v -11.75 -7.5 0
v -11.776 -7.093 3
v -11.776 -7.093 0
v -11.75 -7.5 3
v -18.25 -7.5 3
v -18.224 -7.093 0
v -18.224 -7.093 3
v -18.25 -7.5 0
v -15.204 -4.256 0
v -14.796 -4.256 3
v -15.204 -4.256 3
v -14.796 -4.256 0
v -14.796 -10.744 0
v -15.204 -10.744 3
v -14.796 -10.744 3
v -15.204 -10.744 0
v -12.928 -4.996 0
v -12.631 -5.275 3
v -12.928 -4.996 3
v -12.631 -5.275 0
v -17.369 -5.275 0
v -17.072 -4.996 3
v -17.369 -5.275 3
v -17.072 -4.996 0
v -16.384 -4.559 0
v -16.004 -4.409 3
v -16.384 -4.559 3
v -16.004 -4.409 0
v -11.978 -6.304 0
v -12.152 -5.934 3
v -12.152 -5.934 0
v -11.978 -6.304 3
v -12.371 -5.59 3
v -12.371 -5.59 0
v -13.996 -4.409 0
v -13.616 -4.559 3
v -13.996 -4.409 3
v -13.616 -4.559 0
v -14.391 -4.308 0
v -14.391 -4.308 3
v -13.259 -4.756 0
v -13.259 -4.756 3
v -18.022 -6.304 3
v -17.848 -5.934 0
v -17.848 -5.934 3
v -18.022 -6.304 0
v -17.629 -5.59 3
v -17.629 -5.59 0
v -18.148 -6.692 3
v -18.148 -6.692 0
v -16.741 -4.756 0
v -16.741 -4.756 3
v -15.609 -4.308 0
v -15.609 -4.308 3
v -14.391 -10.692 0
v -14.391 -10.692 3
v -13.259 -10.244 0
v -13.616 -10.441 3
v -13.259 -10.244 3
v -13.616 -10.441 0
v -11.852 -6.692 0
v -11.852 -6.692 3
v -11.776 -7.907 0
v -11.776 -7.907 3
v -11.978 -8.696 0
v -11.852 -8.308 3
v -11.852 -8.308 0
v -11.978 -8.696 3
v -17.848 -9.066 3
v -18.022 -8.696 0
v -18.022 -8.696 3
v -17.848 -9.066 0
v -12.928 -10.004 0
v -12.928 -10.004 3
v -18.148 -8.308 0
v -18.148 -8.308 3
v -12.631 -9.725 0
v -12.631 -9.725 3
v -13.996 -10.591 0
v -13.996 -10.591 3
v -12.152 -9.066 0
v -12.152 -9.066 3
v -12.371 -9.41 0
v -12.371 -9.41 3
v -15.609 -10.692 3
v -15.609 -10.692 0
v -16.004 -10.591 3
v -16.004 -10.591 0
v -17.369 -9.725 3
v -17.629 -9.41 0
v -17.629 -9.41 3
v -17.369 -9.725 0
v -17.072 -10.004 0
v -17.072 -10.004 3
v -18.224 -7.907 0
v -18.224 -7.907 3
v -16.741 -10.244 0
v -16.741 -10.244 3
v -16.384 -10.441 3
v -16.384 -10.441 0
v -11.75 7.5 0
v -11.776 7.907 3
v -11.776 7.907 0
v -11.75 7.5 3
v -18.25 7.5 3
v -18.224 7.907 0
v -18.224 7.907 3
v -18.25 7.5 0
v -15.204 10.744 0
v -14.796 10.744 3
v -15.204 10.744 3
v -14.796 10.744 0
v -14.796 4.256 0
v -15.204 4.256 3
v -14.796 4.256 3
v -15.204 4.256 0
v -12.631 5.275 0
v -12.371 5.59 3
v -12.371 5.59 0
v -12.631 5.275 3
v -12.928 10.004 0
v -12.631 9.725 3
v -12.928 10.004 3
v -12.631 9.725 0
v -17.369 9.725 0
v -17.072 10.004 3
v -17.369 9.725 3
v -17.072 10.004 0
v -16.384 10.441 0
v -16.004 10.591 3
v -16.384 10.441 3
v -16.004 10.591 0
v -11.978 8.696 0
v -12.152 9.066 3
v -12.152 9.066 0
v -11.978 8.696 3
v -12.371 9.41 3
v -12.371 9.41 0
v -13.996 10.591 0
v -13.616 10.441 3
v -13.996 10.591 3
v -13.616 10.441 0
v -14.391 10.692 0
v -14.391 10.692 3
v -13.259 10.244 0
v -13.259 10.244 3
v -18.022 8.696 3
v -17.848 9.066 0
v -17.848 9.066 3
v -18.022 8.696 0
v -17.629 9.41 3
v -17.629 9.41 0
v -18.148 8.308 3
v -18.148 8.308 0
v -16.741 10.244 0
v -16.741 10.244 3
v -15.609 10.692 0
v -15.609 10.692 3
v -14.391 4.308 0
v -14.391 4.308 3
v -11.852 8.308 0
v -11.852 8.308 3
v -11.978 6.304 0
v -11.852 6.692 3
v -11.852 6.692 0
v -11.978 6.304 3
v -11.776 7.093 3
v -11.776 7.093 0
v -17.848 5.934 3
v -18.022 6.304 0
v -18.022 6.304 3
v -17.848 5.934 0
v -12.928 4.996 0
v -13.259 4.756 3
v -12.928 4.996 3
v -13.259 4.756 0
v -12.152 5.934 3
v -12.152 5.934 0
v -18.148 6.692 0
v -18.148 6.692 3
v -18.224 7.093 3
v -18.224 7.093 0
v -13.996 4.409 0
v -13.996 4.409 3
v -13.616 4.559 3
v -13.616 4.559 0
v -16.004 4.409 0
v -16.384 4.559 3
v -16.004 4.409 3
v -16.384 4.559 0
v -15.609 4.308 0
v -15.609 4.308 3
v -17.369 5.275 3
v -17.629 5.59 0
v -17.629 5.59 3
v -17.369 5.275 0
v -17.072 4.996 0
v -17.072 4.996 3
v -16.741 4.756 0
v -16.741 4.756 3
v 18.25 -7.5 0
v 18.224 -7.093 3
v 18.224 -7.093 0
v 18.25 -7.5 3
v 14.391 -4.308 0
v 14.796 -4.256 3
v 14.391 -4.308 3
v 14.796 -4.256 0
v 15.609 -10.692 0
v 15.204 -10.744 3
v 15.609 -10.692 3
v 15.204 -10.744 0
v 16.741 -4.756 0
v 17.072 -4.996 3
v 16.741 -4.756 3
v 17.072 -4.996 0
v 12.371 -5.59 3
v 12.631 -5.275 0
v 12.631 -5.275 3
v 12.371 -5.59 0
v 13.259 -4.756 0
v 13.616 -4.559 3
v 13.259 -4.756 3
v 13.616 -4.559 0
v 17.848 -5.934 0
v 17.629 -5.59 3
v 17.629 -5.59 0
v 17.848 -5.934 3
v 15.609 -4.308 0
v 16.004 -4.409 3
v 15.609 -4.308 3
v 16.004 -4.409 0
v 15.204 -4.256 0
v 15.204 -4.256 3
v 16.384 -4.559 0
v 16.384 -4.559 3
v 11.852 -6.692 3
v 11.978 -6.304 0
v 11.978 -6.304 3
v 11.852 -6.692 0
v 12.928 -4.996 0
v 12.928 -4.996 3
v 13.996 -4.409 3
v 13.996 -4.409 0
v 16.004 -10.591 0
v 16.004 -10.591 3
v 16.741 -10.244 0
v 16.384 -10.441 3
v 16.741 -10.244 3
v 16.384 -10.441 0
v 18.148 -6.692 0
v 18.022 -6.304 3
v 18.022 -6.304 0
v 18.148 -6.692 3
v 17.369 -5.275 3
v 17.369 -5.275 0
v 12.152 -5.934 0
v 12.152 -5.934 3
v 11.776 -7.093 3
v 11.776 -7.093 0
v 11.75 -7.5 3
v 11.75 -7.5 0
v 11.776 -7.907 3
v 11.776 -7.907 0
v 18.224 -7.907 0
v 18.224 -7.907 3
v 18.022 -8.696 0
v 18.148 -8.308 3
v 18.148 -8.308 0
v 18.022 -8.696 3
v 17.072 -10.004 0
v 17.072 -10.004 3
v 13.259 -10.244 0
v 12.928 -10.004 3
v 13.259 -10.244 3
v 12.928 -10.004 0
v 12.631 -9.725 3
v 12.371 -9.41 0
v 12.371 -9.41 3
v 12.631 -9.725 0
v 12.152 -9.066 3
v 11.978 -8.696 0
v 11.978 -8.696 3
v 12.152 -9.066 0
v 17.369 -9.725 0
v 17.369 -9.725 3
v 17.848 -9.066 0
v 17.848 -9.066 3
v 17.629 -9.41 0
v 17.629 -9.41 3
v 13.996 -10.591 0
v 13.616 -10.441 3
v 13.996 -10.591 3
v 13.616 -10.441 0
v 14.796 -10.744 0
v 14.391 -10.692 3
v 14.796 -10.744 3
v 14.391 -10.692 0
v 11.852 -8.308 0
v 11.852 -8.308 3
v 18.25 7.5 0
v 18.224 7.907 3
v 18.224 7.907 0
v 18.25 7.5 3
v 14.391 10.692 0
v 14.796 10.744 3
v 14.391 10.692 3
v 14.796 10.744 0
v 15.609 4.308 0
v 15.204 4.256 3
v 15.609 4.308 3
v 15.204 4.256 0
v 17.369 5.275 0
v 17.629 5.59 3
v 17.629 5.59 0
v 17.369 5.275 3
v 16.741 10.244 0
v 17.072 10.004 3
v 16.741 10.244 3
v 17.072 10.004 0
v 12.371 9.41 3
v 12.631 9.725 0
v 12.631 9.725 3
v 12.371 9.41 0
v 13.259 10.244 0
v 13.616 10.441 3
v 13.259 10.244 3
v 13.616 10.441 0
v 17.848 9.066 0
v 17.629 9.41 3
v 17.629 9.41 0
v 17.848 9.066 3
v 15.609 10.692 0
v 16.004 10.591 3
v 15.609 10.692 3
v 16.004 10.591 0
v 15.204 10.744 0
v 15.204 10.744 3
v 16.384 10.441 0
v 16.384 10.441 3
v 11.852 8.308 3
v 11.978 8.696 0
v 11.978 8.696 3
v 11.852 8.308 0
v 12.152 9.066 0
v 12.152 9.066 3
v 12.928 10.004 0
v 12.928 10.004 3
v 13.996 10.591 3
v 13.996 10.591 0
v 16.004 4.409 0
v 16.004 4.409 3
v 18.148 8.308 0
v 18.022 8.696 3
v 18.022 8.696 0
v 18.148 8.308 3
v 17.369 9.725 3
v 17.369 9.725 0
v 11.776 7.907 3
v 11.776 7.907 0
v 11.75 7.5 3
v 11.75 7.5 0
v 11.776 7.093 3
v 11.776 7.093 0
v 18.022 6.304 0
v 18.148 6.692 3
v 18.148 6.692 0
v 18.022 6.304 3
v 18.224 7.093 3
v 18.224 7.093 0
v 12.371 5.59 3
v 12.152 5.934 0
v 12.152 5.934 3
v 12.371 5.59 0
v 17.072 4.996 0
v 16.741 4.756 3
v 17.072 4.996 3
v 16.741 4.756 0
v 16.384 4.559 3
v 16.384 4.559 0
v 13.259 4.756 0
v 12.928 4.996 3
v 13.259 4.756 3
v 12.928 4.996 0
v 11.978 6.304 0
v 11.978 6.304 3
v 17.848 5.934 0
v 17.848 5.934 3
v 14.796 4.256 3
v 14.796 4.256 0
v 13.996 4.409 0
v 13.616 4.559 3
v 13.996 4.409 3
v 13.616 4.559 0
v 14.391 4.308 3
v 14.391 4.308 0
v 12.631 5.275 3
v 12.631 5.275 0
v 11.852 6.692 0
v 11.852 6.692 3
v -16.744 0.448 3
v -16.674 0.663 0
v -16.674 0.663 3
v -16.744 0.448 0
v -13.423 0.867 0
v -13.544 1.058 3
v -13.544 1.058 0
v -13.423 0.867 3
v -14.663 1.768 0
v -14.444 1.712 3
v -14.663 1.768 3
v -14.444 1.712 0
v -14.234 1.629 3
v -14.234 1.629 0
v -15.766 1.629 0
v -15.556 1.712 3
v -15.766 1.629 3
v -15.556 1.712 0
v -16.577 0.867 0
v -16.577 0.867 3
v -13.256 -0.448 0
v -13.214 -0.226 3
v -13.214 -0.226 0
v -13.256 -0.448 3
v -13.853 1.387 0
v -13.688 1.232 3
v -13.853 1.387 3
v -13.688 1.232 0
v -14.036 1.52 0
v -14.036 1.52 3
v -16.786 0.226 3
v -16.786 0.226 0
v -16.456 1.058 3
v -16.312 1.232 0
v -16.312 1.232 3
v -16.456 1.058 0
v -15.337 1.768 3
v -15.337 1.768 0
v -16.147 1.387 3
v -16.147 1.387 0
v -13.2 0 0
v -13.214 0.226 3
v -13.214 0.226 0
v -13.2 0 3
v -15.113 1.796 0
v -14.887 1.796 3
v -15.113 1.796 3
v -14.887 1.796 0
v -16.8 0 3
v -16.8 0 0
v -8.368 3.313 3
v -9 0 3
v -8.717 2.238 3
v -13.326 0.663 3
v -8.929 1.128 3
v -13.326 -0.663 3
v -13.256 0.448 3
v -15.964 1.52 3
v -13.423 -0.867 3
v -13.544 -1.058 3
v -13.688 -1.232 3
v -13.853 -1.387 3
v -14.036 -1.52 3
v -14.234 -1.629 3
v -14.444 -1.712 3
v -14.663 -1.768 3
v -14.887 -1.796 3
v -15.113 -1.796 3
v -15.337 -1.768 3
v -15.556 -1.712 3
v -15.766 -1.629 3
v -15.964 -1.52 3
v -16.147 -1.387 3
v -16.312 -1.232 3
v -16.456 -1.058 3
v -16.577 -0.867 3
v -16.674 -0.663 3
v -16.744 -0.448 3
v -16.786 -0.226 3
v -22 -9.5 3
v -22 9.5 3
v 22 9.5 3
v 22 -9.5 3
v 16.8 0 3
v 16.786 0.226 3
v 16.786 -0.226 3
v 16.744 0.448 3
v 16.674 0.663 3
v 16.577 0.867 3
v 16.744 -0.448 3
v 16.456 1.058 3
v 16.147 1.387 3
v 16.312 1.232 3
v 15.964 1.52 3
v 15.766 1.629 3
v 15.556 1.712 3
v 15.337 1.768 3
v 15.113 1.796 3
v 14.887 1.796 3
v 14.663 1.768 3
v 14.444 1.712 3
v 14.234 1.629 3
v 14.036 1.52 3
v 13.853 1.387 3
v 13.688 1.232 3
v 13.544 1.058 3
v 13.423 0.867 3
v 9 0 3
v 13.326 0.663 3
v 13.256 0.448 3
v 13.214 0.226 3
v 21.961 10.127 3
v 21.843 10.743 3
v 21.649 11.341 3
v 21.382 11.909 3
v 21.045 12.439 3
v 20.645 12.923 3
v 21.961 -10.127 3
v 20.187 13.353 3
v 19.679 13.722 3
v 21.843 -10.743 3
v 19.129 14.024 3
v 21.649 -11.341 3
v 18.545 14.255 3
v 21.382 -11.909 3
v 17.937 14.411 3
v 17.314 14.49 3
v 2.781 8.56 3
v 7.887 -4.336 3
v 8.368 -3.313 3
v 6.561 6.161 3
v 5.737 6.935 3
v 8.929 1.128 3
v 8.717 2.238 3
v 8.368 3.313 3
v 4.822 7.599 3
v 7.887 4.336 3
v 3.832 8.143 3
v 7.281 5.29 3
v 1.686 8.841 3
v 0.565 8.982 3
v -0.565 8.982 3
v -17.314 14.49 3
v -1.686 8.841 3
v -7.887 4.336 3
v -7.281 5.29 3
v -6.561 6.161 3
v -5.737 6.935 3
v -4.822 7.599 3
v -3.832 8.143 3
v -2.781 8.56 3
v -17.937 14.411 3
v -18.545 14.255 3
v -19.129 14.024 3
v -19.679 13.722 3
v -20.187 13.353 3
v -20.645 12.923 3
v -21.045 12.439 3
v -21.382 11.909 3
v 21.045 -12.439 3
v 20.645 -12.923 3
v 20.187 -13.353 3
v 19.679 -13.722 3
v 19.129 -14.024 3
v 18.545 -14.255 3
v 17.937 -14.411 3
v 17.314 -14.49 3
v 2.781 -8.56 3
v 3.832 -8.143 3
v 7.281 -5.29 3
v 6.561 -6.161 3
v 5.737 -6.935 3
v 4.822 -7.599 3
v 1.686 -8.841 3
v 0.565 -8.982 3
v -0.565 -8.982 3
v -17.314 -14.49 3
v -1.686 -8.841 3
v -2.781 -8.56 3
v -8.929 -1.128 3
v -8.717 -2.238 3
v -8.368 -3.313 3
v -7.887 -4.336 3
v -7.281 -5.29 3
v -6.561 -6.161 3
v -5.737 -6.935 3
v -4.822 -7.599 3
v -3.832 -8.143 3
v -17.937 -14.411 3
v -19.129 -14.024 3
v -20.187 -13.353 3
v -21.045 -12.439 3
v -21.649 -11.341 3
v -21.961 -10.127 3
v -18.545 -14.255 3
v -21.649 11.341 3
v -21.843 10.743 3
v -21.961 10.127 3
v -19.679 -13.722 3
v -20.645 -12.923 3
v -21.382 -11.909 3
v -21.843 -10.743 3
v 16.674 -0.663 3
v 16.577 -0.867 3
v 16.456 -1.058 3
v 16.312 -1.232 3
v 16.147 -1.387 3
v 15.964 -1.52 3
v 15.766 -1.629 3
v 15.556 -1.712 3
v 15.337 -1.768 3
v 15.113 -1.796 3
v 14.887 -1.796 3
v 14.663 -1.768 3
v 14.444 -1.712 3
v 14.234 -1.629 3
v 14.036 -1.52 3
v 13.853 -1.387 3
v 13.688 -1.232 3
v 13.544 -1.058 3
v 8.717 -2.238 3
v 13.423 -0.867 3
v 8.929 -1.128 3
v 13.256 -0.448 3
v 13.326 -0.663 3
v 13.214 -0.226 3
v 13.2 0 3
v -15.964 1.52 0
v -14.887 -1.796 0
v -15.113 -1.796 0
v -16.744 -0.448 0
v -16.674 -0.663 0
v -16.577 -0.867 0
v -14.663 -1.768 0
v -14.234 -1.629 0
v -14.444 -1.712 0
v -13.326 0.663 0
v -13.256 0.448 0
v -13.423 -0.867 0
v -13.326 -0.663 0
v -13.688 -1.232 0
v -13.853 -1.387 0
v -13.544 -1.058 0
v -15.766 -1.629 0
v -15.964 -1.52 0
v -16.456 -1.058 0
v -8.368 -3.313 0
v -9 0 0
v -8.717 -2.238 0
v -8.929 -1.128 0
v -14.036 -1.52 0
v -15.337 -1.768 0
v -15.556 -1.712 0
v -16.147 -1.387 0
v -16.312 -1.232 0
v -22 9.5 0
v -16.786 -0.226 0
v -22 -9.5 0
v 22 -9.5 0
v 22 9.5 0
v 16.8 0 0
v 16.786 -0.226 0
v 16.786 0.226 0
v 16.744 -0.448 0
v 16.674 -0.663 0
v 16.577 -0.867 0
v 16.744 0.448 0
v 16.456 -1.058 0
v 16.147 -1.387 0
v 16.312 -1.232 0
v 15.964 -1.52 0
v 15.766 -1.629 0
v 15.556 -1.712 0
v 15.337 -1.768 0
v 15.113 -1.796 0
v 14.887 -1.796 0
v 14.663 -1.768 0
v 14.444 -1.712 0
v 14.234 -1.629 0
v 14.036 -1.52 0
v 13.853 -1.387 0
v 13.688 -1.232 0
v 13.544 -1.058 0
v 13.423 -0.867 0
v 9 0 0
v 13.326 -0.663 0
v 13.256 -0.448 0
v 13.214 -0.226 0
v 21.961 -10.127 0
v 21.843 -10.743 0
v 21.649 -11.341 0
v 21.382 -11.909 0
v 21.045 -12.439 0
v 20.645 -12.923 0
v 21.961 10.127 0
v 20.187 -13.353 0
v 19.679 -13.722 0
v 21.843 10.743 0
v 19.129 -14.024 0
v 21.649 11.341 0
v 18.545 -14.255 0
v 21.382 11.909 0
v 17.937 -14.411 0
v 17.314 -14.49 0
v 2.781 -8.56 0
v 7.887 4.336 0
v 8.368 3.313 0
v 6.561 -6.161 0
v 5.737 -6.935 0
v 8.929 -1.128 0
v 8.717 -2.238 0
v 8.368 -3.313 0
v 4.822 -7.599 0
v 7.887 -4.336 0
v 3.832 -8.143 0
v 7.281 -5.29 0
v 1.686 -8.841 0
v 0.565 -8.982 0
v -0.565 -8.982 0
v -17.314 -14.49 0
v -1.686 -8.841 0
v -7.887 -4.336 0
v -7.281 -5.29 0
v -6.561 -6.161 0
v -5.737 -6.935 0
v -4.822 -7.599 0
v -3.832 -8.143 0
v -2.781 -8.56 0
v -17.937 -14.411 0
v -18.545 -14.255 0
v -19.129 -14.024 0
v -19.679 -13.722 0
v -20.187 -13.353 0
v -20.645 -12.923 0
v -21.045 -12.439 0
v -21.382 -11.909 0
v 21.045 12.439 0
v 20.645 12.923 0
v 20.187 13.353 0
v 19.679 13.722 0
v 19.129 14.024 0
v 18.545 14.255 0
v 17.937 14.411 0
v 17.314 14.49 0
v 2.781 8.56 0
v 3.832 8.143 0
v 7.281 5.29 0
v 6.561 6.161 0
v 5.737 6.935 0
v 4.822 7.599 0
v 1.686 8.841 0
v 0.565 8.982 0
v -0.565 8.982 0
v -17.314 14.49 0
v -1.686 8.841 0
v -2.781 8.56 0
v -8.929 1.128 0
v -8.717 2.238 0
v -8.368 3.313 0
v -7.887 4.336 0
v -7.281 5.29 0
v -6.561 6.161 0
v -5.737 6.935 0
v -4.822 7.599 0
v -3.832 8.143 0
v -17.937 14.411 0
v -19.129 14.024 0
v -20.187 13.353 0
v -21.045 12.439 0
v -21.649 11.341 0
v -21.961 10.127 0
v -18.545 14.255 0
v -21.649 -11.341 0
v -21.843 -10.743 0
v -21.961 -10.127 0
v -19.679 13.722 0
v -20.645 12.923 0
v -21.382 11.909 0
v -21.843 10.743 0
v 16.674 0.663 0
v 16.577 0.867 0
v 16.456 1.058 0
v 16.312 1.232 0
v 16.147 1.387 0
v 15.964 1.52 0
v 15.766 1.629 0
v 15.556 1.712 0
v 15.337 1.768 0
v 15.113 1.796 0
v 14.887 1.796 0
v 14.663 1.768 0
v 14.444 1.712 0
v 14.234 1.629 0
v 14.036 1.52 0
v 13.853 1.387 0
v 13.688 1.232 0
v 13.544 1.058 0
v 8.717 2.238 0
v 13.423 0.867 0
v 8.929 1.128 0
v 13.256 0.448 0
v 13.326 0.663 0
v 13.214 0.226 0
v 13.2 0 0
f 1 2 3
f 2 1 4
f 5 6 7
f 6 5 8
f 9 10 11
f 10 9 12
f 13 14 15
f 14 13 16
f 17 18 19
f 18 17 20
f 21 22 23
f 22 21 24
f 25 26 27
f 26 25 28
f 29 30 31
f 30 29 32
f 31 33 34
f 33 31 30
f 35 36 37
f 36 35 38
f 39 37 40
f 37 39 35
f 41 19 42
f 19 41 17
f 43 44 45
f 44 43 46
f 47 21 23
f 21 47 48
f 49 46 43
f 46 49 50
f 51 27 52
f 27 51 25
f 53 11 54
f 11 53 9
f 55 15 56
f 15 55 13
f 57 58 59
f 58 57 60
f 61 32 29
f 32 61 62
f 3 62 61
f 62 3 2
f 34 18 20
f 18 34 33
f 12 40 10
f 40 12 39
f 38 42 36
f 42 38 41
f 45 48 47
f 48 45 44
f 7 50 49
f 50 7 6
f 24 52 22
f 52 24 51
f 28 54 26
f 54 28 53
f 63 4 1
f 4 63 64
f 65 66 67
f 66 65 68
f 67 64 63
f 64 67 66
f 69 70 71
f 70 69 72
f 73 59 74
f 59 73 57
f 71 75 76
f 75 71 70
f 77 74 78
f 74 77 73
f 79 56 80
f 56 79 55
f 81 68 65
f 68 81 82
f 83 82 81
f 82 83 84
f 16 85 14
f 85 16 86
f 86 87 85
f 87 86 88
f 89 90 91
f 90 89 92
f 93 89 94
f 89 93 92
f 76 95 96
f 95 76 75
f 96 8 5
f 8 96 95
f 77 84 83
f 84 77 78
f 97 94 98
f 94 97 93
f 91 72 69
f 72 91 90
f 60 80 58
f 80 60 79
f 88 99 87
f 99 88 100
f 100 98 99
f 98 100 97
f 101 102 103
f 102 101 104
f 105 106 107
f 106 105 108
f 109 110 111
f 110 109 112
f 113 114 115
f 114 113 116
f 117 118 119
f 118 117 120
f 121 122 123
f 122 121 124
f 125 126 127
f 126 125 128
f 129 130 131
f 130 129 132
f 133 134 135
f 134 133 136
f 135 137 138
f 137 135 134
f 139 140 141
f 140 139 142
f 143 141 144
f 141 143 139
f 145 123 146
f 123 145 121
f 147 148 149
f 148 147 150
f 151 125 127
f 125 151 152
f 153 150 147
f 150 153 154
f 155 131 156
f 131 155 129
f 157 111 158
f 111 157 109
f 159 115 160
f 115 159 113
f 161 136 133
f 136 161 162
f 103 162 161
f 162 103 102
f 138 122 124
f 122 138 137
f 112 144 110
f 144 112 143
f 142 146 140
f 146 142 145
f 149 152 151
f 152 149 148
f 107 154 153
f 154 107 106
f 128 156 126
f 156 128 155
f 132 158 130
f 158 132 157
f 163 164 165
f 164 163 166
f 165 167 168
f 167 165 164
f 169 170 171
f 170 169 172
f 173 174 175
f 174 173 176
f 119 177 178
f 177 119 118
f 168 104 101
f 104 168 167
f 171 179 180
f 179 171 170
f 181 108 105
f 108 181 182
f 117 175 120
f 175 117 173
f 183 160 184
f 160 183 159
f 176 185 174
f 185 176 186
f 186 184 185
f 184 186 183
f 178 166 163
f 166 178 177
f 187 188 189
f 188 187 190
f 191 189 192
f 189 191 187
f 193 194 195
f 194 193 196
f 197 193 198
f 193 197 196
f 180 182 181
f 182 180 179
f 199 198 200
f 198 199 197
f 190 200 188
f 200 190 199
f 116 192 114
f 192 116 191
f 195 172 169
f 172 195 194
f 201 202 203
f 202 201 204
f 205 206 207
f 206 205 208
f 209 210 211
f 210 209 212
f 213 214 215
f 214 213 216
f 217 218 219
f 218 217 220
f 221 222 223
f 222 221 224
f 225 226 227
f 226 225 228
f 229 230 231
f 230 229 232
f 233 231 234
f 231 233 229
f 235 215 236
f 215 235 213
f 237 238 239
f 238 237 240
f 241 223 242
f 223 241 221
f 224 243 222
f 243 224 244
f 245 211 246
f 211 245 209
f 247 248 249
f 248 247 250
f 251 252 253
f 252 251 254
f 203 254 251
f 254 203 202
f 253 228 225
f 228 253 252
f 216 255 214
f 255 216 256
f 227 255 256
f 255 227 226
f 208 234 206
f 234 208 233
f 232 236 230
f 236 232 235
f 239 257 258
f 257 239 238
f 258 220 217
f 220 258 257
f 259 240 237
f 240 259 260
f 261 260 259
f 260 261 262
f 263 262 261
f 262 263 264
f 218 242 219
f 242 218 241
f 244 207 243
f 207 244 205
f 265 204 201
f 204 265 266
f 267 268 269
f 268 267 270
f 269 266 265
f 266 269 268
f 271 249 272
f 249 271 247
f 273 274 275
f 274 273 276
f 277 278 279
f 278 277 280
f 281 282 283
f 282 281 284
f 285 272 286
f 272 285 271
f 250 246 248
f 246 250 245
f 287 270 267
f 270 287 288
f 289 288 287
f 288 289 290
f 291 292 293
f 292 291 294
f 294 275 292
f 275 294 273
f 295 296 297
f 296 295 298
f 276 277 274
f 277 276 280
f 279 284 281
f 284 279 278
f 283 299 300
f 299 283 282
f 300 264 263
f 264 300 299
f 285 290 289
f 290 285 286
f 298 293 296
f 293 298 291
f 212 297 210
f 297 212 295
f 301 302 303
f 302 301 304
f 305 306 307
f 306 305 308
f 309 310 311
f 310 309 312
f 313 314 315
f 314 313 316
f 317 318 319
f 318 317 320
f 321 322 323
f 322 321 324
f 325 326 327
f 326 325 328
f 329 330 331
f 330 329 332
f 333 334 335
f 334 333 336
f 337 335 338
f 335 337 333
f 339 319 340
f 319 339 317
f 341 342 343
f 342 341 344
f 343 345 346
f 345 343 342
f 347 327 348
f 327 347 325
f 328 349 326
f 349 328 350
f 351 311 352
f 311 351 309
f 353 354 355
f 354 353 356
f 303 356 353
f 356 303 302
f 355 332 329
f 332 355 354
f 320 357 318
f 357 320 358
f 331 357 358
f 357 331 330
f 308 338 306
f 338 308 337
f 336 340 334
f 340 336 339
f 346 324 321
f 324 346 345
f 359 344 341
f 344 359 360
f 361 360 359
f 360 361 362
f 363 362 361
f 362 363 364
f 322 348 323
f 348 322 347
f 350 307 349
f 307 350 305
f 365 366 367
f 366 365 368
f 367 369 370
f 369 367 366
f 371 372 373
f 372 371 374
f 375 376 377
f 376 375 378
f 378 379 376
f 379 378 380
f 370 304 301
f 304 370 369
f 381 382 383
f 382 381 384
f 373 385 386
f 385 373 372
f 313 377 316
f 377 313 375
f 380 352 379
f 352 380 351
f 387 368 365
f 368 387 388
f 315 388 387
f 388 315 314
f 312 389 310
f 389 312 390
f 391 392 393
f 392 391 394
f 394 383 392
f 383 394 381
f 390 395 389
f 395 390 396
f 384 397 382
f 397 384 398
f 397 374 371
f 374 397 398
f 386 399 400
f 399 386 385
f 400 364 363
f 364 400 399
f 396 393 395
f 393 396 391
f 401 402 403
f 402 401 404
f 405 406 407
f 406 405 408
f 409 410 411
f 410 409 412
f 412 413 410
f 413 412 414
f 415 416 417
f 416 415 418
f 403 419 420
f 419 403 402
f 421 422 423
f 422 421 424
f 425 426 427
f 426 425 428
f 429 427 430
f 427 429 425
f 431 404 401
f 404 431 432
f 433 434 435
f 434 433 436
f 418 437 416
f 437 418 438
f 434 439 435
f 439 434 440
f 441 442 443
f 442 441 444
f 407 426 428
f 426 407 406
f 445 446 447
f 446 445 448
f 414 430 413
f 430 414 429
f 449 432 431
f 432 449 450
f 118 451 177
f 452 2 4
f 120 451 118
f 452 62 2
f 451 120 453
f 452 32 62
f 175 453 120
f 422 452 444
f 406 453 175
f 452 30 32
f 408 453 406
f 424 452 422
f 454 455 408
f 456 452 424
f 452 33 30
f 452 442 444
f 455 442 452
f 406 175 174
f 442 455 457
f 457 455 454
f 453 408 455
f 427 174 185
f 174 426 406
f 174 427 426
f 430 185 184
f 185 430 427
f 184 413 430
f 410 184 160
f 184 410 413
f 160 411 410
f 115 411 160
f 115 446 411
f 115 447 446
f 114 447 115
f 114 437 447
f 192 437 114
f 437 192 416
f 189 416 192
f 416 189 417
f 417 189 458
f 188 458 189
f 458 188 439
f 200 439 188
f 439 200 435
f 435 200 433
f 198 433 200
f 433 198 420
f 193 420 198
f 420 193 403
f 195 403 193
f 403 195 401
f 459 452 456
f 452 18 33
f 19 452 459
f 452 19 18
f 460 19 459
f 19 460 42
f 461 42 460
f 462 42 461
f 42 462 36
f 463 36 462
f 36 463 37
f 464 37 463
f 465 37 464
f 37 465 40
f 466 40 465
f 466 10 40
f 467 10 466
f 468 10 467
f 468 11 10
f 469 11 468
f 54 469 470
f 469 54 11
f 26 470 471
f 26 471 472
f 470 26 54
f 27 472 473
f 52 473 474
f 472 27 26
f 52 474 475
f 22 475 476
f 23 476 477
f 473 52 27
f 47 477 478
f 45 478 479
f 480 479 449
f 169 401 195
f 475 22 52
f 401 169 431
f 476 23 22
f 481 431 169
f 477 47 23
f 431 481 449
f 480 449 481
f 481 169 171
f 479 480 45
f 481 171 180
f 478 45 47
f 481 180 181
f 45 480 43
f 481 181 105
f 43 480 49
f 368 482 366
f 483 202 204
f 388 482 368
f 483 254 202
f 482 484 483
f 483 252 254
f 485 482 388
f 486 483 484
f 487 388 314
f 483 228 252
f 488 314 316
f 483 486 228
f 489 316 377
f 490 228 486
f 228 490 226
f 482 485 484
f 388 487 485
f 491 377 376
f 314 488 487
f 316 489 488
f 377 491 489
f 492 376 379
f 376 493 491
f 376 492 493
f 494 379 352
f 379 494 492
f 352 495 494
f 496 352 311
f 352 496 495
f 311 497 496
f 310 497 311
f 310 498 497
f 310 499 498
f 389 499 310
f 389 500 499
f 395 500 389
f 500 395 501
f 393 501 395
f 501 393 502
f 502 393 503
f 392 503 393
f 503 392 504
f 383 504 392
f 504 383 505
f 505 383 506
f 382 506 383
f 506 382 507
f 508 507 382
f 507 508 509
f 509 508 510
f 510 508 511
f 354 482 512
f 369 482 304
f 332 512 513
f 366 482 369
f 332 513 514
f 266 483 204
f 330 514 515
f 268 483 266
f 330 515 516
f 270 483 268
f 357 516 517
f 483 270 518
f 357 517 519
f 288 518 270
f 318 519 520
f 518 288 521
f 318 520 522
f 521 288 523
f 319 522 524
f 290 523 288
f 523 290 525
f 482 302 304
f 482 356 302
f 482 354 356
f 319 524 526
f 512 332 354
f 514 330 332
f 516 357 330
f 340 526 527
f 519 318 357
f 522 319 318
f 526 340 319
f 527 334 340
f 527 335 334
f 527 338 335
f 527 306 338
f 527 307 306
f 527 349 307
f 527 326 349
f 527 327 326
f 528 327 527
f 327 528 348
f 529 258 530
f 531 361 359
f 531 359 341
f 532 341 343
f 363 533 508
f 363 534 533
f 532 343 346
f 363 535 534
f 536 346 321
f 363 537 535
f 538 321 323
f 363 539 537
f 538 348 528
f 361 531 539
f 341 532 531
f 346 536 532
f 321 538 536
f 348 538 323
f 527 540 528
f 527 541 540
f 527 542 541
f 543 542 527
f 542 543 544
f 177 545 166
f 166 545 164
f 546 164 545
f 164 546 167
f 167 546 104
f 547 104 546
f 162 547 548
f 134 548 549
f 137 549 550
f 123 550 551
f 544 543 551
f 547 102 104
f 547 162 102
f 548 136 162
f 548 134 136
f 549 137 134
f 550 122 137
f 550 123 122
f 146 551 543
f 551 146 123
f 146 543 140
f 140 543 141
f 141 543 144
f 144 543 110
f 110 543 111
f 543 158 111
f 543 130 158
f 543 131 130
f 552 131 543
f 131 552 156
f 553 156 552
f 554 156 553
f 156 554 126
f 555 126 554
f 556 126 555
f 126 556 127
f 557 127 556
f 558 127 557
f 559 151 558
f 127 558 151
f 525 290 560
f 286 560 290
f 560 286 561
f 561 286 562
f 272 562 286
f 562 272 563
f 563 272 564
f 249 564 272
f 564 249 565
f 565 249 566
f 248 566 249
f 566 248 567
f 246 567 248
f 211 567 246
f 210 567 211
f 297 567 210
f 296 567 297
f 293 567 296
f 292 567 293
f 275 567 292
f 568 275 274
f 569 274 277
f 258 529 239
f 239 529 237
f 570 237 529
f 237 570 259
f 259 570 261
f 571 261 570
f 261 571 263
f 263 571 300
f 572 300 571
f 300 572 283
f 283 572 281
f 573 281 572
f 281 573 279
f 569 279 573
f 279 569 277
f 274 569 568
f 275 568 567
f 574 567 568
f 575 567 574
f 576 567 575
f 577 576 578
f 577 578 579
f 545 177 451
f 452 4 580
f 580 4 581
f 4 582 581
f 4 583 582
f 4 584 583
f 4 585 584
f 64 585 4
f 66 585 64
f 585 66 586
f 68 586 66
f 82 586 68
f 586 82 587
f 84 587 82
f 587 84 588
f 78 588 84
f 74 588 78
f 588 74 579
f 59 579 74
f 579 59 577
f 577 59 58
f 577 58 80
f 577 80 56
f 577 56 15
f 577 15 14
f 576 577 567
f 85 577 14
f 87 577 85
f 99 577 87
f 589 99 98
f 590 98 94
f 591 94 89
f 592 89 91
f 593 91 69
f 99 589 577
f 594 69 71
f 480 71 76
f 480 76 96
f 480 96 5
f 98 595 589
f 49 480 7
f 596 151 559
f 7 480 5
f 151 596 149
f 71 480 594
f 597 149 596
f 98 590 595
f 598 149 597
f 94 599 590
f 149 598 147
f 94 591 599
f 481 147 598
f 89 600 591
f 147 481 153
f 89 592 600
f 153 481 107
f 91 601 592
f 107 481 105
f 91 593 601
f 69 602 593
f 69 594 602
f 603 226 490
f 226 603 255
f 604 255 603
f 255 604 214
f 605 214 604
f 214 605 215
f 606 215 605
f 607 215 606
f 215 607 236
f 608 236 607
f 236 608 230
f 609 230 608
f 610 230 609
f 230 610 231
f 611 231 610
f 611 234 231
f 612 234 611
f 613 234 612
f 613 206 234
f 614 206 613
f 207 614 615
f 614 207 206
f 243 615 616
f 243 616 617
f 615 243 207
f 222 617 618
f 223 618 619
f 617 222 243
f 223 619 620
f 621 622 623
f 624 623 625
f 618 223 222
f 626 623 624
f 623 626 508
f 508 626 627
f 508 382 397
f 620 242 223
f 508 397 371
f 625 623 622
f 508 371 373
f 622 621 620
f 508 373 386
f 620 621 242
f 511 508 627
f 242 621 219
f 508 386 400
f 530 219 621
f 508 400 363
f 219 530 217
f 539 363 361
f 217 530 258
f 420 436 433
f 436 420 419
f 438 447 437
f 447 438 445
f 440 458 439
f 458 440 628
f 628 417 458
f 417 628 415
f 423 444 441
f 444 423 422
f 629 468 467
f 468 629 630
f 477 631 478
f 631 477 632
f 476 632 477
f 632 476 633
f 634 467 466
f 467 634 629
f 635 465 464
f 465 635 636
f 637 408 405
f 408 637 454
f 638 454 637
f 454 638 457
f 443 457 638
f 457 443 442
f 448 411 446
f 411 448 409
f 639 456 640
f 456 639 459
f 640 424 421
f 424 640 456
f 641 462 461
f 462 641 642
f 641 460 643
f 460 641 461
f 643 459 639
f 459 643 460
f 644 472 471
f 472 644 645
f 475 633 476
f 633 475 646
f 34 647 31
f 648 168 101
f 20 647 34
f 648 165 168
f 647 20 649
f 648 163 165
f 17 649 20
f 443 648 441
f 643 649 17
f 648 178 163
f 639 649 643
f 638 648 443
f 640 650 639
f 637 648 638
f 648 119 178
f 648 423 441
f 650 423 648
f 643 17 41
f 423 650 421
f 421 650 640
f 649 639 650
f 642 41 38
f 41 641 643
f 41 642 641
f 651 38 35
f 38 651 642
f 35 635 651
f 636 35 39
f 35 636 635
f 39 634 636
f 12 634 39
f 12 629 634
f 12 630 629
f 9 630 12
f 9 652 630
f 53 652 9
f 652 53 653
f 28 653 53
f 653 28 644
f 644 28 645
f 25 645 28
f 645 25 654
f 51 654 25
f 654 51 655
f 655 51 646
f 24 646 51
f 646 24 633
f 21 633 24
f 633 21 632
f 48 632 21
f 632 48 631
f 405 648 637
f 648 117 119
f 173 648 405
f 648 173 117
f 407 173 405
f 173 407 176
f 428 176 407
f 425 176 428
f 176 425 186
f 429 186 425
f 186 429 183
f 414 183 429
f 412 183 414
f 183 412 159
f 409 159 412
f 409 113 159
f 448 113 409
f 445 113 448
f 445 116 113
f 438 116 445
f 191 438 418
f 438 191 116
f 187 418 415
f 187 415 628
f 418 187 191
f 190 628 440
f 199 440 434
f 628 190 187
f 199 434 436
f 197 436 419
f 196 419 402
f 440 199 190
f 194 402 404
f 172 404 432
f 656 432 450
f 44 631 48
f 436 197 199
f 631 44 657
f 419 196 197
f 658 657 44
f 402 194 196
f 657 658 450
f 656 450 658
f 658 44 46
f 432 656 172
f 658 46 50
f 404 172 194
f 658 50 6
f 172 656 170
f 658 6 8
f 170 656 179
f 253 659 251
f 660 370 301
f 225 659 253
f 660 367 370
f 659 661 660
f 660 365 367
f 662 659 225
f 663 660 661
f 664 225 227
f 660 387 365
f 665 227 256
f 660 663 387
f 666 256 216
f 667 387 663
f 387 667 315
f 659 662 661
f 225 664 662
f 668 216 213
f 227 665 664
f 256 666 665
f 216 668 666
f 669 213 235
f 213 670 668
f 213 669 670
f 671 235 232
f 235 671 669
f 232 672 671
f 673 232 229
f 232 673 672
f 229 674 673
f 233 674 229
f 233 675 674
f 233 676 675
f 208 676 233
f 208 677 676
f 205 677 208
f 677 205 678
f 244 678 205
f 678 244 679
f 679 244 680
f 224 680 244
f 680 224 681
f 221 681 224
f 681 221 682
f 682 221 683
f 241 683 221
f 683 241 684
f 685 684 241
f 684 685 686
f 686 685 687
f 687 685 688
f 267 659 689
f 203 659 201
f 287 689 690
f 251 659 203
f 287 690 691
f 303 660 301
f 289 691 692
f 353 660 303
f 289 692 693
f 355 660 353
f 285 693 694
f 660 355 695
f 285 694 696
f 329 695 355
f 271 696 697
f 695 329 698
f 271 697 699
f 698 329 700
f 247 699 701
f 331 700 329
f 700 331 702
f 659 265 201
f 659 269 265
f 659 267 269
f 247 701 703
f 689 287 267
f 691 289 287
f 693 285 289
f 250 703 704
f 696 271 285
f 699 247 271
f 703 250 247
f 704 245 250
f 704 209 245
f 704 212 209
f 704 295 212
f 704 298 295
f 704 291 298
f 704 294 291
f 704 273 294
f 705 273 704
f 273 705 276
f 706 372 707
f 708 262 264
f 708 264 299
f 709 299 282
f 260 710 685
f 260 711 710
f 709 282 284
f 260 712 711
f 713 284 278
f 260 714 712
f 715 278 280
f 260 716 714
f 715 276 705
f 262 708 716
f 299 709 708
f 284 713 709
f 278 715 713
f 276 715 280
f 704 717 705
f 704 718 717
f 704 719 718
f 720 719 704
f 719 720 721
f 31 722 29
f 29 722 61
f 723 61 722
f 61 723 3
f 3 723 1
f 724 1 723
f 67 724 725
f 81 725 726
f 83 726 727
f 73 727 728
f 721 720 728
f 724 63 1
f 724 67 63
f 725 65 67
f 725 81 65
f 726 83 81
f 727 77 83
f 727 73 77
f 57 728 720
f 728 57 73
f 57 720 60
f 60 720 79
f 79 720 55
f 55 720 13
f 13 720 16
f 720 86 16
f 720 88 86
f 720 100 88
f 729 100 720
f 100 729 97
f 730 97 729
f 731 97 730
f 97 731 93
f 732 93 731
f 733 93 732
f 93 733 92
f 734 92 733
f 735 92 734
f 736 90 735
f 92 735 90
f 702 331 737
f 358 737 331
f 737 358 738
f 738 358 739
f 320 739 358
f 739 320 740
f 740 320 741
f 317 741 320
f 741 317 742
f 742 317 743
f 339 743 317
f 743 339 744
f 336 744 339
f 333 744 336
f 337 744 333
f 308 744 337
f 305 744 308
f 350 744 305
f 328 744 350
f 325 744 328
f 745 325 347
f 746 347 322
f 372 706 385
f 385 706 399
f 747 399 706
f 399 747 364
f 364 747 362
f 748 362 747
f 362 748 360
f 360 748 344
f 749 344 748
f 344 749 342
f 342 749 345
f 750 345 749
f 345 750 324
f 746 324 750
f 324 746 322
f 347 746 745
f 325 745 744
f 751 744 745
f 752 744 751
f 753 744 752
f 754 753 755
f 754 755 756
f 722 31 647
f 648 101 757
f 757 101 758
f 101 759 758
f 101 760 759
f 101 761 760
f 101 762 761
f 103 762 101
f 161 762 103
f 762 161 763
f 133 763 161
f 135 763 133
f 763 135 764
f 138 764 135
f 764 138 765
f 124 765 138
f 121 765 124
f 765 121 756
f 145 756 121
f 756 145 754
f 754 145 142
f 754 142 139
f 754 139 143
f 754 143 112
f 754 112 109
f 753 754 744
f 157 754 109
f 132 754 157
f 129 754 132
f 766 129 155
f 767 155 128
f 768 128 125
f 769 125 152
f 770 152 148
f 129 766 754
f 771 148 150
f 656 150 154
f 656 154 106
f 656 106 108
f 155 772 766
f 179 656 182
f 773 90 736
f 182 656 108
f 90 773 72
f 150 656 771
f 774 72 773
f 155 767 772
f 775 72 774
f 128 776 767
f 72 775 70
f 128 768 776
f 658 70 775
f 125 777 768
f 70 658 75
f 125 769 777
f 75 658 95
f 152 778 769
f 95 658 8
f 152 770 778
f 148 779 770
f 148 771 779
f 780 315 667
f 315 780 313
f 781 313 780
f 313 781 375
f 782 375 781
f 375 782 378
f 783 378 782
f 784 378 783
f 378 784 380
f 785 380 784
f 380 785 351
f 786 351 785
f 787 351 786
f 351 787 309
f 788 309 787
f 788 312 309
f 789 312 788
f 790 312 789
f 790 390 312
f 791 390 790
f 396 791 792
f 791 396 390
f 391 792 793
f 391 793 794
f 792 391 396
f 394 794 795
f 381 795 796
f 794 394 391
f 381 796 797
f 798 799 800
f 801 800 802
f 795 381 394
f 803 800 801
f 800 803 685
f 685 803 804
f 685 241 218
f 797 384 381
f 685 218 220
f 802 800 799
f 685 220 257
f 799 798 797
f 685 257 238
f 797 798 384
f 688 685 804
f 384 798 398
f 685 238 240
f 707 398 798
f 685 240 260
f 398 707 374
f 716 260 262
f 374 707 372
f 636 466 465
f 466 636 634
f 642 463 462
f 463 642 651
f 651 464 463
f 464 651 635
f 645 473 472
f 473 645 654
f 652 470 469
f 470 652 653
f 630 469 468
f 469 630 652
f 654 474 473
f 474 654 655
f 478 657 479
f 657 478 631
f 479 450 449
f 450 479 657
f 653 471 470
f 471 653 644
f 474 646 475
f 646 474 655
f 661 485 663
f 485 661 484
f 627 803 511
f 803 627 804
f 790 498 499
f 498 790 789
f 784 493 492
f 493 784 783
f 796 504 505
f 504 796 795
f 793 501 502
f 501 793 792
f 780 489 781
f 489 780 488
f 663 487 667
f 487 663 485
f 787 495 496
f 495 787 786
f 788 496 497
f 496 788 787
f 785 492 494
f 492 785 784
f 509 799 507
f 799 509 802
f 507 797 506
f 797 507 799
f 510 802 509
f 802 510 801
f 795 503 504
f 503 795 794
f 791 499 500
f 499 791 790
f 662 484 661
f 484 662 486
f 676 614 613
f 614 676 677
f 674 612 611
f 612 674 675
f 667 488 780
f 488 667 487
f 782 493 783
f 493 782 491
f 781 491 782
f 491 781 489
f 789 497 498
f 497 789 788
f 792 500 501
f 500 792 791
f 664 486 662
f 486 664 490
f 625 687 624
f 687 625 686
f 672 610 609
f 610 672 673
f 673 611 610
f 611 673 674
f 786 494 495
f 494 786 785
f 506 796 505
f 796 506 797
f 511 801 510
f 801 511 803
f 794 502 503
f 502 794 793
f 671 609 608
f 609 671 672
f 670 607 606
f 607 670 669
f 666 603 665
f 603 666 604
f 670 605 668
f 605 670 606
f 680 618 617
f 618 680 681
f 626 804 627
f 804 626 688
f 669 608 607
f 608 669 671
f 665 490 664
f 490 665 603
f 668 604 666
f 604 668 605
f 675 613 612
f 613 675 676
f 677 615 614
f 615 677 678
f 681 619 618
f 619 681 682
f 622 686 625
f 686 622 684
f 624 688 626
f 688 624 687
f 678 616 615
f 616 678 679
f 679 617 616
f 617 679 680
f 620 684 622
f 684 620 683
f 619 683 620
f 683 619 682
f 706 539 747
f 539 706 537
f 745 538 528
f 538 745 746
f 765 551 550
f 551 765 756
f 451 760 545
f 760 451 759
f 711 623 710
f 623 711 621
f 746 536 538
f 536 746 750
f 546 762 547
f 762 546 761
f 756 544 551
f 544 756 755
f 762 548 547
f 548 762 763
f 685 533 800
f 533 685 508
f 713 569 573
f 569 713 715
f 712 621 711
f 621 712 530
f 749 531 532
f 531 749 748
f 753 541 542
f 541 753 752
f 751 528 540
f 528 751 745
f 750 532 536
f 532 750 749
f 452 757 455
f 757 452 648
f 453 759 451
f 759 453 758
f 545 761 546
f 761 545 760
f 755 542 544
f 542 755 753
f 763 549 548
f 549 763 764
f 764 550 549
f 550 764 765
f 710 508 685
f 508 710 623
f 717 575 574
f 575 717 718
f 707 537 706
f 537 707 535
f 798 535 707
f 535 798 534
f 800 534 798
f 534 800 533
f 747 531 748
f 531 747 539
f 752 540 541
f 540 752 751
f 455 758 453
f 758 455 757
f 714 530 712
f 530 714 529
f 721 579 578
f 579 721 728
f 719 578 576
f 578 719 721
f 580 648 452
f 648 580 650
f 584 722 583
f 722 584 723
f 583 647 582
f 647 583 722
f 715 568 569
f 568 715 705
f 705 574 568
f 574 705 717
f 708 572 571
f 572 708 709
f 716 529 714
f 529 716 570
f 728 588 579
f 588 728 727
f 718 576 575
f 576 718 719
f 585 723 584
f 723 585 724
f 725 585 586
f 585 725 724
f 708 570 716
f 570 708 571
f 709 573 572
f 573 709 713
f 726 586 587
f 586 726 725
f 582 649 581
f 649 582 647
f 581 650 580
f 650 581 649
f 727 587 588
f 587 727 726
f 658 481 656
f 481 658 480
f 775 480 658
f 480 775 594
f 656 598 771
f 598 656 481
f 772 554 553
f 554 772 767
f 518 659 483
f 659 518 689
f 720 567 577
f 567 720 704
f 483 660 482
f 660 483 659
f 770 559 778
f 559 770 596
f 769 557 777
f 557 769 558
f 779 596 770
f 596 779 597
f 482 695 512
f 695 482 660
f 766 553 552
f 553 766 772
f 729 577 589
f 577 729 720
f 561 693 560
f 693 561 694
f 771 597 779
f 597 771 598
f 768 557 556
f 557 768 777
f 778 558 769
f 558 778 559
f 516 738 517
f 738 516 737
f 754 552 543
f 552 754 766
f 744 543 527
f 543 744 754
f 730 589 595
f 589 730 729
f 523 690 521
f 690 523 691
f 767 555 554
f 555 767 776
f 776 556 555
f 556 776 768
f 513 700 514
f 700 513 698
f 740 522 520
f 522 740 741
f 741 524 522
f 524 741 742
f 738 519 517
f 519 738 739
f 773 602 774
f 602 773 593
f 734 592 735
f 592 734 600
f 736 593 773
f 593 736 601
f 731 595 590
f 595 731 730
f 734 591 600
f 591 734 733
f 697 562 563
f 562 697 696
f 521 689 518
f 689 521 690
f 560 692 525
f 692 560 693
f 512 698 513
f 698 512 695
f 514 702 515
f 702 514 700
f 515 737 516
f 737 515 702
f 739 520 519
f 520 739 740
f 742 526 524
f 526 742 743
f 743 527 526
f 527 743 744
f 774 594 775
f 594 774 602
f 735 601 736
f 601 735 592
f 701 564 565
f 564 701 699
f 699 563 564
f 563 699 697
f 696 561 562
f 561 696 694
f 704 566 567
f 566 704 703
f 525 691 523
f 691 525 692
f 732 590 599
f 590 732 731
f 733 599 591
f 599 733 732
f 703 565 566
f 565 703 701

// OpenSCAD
$fn = 50;


difference() {
	union() {
		hull() {
			translate(v = [-17.0000000000, 9.5000000000, 0]) {
				cylinder(h = 3, r = 5);
			}
			translate(v = [17.0000000000, 9.5000000000, 0]) {
				cylinder(h = 3, r = 5);
			}
			translate(v = [-17.0000000000, -9.5000000000, 0]) {
				cylinder(h = 3, r = 5);
			}
			translate(v = [17.0000000000, -9.5000000000, 0]) {
				cylinder(h = 3, r = 5);
			}
		}
	}
	union() {
		#translate(v = [-15.0000000000, -7.5000000000, 0]) {
			cylinder(h = 3, r = 3.2500000000);
		}
		#translate(v = [-15.0000000000, 7.5000000000, 0]) {
			cylinder(h = 3, r = 3.2500000000);
		}
		#translate(v = [15.0000000000, -7.5000000000, 0]) {
			cylinder(h = 3, r = 3.2500000000);
		}
		#translate(v = [15.0000000000, 7.5000000000, 0]) {
			cylinder(h = 3, r = 3.2500000000);
		}
		#translate(v = [-15.0000000000, -7.5000000000, -100.0000000000]) {
			cylinder(h = 200, r = 3.2500000000);
		}
		#translate(v = [-15.0000000000, 7.5000000000, -100.0000000000]) {
			cylinder(h = 200, r = 3.2500000000);
		}
		#translate(v = [15.0000000000, -7.5000000000, -100.0000000000]) {
			cylinder(h = 200, r = 3.2500000000);
		}
		#translate(v = [15.0000000000, 7.5000000000, -100.0000000000]) {
			cylinder(h = 200, r = 3.2500000000);
		}
		#translate(v = [-15.0000000000, -7.5000000000, 0]) {
			cylinder(h = 3, r = 1.8000000000);
		}
		#translate(v = [-15.0000000000, 0.0000000000, 0]) {
			cylinder(h = 3, r = 1.8000000000);
		}
		#translate(v = [-15.0000000000, 7.5000000000, 0]) {
			cylinder(h = 3, r = 1.8000000000);
		}
		#translate(v = [15.0000000000, -7.5000000000, 0]) {
			cylinder(h = 3, r = 1.8000000000);
		}
		#translate(v = [15.0000000000, 0.0000000000, 0]) {
			cylinder(h = 3, r = 1.8000000000);
		}
		#translate(v = [15.0000000000, 7.5000000000, 0]) {
			cylinder(h = 3, r = 1.8000000000);
		}
		#translate(v = [-15.0000000000, -7.5000000000, 0]) {
			cylinder(h = 3, r = 1.8000000000);
		}
		#translate(v = [-15.0000000000, 0.0000000000, 0]) {
			cylinder(h = 3, r = 1.8000000000);
		}
		#translate(v = [-15.0000000000, 7.5000000000, 0]) {
			cylinder(h = 3, r = 1.8000000000);
		}
		#translate(v = [15.0000000000, -7.5000000000, 0]) {
			cylinder(h = 3, r = 1.8000000000);
		}
		#translate(v = [15.0000000000, 0.0000000000, 0]) {
			cylinder(h = 3, r = 1.8000000000);
		}
		#translate(v = [15.0000000000, 7.5000000000, 0]) {
			cylinder(h = 3, r = 1.8000000000);
		}
		#translate(v = [-15.0000000000, -7.5000000000, 0]) {
			cylinder(h = 3, r = 1.8000000000);
		}
		#translate(v = [-15.0000000000, 0.0000000000, 0]) {
			cylinder(h = 3, r = 1.8000000000);
		}
		#translate(v = [-15.0000000000, 7.5000000000, 0]) {
			cylinder(h = 3, r = 1.8000000000);
		}
		#translate(v = [15.0000000000, -7.5000000000, 0]) {
			cylinder(h = 3, r = 1.8000000000);
		}
		#translate(v = [15.0000000000, 0.0000000000, 0]) {
			cylinder(h = 3, r = 1.8000000000);
		}
		#translate(v = [15.0000000000, 7.5000000000, 0]) {
			cylinder(h = 3, r = 1.8000000000);
		}
		#cylinder(h = 3, r = 9.0000000000);
	}
}
